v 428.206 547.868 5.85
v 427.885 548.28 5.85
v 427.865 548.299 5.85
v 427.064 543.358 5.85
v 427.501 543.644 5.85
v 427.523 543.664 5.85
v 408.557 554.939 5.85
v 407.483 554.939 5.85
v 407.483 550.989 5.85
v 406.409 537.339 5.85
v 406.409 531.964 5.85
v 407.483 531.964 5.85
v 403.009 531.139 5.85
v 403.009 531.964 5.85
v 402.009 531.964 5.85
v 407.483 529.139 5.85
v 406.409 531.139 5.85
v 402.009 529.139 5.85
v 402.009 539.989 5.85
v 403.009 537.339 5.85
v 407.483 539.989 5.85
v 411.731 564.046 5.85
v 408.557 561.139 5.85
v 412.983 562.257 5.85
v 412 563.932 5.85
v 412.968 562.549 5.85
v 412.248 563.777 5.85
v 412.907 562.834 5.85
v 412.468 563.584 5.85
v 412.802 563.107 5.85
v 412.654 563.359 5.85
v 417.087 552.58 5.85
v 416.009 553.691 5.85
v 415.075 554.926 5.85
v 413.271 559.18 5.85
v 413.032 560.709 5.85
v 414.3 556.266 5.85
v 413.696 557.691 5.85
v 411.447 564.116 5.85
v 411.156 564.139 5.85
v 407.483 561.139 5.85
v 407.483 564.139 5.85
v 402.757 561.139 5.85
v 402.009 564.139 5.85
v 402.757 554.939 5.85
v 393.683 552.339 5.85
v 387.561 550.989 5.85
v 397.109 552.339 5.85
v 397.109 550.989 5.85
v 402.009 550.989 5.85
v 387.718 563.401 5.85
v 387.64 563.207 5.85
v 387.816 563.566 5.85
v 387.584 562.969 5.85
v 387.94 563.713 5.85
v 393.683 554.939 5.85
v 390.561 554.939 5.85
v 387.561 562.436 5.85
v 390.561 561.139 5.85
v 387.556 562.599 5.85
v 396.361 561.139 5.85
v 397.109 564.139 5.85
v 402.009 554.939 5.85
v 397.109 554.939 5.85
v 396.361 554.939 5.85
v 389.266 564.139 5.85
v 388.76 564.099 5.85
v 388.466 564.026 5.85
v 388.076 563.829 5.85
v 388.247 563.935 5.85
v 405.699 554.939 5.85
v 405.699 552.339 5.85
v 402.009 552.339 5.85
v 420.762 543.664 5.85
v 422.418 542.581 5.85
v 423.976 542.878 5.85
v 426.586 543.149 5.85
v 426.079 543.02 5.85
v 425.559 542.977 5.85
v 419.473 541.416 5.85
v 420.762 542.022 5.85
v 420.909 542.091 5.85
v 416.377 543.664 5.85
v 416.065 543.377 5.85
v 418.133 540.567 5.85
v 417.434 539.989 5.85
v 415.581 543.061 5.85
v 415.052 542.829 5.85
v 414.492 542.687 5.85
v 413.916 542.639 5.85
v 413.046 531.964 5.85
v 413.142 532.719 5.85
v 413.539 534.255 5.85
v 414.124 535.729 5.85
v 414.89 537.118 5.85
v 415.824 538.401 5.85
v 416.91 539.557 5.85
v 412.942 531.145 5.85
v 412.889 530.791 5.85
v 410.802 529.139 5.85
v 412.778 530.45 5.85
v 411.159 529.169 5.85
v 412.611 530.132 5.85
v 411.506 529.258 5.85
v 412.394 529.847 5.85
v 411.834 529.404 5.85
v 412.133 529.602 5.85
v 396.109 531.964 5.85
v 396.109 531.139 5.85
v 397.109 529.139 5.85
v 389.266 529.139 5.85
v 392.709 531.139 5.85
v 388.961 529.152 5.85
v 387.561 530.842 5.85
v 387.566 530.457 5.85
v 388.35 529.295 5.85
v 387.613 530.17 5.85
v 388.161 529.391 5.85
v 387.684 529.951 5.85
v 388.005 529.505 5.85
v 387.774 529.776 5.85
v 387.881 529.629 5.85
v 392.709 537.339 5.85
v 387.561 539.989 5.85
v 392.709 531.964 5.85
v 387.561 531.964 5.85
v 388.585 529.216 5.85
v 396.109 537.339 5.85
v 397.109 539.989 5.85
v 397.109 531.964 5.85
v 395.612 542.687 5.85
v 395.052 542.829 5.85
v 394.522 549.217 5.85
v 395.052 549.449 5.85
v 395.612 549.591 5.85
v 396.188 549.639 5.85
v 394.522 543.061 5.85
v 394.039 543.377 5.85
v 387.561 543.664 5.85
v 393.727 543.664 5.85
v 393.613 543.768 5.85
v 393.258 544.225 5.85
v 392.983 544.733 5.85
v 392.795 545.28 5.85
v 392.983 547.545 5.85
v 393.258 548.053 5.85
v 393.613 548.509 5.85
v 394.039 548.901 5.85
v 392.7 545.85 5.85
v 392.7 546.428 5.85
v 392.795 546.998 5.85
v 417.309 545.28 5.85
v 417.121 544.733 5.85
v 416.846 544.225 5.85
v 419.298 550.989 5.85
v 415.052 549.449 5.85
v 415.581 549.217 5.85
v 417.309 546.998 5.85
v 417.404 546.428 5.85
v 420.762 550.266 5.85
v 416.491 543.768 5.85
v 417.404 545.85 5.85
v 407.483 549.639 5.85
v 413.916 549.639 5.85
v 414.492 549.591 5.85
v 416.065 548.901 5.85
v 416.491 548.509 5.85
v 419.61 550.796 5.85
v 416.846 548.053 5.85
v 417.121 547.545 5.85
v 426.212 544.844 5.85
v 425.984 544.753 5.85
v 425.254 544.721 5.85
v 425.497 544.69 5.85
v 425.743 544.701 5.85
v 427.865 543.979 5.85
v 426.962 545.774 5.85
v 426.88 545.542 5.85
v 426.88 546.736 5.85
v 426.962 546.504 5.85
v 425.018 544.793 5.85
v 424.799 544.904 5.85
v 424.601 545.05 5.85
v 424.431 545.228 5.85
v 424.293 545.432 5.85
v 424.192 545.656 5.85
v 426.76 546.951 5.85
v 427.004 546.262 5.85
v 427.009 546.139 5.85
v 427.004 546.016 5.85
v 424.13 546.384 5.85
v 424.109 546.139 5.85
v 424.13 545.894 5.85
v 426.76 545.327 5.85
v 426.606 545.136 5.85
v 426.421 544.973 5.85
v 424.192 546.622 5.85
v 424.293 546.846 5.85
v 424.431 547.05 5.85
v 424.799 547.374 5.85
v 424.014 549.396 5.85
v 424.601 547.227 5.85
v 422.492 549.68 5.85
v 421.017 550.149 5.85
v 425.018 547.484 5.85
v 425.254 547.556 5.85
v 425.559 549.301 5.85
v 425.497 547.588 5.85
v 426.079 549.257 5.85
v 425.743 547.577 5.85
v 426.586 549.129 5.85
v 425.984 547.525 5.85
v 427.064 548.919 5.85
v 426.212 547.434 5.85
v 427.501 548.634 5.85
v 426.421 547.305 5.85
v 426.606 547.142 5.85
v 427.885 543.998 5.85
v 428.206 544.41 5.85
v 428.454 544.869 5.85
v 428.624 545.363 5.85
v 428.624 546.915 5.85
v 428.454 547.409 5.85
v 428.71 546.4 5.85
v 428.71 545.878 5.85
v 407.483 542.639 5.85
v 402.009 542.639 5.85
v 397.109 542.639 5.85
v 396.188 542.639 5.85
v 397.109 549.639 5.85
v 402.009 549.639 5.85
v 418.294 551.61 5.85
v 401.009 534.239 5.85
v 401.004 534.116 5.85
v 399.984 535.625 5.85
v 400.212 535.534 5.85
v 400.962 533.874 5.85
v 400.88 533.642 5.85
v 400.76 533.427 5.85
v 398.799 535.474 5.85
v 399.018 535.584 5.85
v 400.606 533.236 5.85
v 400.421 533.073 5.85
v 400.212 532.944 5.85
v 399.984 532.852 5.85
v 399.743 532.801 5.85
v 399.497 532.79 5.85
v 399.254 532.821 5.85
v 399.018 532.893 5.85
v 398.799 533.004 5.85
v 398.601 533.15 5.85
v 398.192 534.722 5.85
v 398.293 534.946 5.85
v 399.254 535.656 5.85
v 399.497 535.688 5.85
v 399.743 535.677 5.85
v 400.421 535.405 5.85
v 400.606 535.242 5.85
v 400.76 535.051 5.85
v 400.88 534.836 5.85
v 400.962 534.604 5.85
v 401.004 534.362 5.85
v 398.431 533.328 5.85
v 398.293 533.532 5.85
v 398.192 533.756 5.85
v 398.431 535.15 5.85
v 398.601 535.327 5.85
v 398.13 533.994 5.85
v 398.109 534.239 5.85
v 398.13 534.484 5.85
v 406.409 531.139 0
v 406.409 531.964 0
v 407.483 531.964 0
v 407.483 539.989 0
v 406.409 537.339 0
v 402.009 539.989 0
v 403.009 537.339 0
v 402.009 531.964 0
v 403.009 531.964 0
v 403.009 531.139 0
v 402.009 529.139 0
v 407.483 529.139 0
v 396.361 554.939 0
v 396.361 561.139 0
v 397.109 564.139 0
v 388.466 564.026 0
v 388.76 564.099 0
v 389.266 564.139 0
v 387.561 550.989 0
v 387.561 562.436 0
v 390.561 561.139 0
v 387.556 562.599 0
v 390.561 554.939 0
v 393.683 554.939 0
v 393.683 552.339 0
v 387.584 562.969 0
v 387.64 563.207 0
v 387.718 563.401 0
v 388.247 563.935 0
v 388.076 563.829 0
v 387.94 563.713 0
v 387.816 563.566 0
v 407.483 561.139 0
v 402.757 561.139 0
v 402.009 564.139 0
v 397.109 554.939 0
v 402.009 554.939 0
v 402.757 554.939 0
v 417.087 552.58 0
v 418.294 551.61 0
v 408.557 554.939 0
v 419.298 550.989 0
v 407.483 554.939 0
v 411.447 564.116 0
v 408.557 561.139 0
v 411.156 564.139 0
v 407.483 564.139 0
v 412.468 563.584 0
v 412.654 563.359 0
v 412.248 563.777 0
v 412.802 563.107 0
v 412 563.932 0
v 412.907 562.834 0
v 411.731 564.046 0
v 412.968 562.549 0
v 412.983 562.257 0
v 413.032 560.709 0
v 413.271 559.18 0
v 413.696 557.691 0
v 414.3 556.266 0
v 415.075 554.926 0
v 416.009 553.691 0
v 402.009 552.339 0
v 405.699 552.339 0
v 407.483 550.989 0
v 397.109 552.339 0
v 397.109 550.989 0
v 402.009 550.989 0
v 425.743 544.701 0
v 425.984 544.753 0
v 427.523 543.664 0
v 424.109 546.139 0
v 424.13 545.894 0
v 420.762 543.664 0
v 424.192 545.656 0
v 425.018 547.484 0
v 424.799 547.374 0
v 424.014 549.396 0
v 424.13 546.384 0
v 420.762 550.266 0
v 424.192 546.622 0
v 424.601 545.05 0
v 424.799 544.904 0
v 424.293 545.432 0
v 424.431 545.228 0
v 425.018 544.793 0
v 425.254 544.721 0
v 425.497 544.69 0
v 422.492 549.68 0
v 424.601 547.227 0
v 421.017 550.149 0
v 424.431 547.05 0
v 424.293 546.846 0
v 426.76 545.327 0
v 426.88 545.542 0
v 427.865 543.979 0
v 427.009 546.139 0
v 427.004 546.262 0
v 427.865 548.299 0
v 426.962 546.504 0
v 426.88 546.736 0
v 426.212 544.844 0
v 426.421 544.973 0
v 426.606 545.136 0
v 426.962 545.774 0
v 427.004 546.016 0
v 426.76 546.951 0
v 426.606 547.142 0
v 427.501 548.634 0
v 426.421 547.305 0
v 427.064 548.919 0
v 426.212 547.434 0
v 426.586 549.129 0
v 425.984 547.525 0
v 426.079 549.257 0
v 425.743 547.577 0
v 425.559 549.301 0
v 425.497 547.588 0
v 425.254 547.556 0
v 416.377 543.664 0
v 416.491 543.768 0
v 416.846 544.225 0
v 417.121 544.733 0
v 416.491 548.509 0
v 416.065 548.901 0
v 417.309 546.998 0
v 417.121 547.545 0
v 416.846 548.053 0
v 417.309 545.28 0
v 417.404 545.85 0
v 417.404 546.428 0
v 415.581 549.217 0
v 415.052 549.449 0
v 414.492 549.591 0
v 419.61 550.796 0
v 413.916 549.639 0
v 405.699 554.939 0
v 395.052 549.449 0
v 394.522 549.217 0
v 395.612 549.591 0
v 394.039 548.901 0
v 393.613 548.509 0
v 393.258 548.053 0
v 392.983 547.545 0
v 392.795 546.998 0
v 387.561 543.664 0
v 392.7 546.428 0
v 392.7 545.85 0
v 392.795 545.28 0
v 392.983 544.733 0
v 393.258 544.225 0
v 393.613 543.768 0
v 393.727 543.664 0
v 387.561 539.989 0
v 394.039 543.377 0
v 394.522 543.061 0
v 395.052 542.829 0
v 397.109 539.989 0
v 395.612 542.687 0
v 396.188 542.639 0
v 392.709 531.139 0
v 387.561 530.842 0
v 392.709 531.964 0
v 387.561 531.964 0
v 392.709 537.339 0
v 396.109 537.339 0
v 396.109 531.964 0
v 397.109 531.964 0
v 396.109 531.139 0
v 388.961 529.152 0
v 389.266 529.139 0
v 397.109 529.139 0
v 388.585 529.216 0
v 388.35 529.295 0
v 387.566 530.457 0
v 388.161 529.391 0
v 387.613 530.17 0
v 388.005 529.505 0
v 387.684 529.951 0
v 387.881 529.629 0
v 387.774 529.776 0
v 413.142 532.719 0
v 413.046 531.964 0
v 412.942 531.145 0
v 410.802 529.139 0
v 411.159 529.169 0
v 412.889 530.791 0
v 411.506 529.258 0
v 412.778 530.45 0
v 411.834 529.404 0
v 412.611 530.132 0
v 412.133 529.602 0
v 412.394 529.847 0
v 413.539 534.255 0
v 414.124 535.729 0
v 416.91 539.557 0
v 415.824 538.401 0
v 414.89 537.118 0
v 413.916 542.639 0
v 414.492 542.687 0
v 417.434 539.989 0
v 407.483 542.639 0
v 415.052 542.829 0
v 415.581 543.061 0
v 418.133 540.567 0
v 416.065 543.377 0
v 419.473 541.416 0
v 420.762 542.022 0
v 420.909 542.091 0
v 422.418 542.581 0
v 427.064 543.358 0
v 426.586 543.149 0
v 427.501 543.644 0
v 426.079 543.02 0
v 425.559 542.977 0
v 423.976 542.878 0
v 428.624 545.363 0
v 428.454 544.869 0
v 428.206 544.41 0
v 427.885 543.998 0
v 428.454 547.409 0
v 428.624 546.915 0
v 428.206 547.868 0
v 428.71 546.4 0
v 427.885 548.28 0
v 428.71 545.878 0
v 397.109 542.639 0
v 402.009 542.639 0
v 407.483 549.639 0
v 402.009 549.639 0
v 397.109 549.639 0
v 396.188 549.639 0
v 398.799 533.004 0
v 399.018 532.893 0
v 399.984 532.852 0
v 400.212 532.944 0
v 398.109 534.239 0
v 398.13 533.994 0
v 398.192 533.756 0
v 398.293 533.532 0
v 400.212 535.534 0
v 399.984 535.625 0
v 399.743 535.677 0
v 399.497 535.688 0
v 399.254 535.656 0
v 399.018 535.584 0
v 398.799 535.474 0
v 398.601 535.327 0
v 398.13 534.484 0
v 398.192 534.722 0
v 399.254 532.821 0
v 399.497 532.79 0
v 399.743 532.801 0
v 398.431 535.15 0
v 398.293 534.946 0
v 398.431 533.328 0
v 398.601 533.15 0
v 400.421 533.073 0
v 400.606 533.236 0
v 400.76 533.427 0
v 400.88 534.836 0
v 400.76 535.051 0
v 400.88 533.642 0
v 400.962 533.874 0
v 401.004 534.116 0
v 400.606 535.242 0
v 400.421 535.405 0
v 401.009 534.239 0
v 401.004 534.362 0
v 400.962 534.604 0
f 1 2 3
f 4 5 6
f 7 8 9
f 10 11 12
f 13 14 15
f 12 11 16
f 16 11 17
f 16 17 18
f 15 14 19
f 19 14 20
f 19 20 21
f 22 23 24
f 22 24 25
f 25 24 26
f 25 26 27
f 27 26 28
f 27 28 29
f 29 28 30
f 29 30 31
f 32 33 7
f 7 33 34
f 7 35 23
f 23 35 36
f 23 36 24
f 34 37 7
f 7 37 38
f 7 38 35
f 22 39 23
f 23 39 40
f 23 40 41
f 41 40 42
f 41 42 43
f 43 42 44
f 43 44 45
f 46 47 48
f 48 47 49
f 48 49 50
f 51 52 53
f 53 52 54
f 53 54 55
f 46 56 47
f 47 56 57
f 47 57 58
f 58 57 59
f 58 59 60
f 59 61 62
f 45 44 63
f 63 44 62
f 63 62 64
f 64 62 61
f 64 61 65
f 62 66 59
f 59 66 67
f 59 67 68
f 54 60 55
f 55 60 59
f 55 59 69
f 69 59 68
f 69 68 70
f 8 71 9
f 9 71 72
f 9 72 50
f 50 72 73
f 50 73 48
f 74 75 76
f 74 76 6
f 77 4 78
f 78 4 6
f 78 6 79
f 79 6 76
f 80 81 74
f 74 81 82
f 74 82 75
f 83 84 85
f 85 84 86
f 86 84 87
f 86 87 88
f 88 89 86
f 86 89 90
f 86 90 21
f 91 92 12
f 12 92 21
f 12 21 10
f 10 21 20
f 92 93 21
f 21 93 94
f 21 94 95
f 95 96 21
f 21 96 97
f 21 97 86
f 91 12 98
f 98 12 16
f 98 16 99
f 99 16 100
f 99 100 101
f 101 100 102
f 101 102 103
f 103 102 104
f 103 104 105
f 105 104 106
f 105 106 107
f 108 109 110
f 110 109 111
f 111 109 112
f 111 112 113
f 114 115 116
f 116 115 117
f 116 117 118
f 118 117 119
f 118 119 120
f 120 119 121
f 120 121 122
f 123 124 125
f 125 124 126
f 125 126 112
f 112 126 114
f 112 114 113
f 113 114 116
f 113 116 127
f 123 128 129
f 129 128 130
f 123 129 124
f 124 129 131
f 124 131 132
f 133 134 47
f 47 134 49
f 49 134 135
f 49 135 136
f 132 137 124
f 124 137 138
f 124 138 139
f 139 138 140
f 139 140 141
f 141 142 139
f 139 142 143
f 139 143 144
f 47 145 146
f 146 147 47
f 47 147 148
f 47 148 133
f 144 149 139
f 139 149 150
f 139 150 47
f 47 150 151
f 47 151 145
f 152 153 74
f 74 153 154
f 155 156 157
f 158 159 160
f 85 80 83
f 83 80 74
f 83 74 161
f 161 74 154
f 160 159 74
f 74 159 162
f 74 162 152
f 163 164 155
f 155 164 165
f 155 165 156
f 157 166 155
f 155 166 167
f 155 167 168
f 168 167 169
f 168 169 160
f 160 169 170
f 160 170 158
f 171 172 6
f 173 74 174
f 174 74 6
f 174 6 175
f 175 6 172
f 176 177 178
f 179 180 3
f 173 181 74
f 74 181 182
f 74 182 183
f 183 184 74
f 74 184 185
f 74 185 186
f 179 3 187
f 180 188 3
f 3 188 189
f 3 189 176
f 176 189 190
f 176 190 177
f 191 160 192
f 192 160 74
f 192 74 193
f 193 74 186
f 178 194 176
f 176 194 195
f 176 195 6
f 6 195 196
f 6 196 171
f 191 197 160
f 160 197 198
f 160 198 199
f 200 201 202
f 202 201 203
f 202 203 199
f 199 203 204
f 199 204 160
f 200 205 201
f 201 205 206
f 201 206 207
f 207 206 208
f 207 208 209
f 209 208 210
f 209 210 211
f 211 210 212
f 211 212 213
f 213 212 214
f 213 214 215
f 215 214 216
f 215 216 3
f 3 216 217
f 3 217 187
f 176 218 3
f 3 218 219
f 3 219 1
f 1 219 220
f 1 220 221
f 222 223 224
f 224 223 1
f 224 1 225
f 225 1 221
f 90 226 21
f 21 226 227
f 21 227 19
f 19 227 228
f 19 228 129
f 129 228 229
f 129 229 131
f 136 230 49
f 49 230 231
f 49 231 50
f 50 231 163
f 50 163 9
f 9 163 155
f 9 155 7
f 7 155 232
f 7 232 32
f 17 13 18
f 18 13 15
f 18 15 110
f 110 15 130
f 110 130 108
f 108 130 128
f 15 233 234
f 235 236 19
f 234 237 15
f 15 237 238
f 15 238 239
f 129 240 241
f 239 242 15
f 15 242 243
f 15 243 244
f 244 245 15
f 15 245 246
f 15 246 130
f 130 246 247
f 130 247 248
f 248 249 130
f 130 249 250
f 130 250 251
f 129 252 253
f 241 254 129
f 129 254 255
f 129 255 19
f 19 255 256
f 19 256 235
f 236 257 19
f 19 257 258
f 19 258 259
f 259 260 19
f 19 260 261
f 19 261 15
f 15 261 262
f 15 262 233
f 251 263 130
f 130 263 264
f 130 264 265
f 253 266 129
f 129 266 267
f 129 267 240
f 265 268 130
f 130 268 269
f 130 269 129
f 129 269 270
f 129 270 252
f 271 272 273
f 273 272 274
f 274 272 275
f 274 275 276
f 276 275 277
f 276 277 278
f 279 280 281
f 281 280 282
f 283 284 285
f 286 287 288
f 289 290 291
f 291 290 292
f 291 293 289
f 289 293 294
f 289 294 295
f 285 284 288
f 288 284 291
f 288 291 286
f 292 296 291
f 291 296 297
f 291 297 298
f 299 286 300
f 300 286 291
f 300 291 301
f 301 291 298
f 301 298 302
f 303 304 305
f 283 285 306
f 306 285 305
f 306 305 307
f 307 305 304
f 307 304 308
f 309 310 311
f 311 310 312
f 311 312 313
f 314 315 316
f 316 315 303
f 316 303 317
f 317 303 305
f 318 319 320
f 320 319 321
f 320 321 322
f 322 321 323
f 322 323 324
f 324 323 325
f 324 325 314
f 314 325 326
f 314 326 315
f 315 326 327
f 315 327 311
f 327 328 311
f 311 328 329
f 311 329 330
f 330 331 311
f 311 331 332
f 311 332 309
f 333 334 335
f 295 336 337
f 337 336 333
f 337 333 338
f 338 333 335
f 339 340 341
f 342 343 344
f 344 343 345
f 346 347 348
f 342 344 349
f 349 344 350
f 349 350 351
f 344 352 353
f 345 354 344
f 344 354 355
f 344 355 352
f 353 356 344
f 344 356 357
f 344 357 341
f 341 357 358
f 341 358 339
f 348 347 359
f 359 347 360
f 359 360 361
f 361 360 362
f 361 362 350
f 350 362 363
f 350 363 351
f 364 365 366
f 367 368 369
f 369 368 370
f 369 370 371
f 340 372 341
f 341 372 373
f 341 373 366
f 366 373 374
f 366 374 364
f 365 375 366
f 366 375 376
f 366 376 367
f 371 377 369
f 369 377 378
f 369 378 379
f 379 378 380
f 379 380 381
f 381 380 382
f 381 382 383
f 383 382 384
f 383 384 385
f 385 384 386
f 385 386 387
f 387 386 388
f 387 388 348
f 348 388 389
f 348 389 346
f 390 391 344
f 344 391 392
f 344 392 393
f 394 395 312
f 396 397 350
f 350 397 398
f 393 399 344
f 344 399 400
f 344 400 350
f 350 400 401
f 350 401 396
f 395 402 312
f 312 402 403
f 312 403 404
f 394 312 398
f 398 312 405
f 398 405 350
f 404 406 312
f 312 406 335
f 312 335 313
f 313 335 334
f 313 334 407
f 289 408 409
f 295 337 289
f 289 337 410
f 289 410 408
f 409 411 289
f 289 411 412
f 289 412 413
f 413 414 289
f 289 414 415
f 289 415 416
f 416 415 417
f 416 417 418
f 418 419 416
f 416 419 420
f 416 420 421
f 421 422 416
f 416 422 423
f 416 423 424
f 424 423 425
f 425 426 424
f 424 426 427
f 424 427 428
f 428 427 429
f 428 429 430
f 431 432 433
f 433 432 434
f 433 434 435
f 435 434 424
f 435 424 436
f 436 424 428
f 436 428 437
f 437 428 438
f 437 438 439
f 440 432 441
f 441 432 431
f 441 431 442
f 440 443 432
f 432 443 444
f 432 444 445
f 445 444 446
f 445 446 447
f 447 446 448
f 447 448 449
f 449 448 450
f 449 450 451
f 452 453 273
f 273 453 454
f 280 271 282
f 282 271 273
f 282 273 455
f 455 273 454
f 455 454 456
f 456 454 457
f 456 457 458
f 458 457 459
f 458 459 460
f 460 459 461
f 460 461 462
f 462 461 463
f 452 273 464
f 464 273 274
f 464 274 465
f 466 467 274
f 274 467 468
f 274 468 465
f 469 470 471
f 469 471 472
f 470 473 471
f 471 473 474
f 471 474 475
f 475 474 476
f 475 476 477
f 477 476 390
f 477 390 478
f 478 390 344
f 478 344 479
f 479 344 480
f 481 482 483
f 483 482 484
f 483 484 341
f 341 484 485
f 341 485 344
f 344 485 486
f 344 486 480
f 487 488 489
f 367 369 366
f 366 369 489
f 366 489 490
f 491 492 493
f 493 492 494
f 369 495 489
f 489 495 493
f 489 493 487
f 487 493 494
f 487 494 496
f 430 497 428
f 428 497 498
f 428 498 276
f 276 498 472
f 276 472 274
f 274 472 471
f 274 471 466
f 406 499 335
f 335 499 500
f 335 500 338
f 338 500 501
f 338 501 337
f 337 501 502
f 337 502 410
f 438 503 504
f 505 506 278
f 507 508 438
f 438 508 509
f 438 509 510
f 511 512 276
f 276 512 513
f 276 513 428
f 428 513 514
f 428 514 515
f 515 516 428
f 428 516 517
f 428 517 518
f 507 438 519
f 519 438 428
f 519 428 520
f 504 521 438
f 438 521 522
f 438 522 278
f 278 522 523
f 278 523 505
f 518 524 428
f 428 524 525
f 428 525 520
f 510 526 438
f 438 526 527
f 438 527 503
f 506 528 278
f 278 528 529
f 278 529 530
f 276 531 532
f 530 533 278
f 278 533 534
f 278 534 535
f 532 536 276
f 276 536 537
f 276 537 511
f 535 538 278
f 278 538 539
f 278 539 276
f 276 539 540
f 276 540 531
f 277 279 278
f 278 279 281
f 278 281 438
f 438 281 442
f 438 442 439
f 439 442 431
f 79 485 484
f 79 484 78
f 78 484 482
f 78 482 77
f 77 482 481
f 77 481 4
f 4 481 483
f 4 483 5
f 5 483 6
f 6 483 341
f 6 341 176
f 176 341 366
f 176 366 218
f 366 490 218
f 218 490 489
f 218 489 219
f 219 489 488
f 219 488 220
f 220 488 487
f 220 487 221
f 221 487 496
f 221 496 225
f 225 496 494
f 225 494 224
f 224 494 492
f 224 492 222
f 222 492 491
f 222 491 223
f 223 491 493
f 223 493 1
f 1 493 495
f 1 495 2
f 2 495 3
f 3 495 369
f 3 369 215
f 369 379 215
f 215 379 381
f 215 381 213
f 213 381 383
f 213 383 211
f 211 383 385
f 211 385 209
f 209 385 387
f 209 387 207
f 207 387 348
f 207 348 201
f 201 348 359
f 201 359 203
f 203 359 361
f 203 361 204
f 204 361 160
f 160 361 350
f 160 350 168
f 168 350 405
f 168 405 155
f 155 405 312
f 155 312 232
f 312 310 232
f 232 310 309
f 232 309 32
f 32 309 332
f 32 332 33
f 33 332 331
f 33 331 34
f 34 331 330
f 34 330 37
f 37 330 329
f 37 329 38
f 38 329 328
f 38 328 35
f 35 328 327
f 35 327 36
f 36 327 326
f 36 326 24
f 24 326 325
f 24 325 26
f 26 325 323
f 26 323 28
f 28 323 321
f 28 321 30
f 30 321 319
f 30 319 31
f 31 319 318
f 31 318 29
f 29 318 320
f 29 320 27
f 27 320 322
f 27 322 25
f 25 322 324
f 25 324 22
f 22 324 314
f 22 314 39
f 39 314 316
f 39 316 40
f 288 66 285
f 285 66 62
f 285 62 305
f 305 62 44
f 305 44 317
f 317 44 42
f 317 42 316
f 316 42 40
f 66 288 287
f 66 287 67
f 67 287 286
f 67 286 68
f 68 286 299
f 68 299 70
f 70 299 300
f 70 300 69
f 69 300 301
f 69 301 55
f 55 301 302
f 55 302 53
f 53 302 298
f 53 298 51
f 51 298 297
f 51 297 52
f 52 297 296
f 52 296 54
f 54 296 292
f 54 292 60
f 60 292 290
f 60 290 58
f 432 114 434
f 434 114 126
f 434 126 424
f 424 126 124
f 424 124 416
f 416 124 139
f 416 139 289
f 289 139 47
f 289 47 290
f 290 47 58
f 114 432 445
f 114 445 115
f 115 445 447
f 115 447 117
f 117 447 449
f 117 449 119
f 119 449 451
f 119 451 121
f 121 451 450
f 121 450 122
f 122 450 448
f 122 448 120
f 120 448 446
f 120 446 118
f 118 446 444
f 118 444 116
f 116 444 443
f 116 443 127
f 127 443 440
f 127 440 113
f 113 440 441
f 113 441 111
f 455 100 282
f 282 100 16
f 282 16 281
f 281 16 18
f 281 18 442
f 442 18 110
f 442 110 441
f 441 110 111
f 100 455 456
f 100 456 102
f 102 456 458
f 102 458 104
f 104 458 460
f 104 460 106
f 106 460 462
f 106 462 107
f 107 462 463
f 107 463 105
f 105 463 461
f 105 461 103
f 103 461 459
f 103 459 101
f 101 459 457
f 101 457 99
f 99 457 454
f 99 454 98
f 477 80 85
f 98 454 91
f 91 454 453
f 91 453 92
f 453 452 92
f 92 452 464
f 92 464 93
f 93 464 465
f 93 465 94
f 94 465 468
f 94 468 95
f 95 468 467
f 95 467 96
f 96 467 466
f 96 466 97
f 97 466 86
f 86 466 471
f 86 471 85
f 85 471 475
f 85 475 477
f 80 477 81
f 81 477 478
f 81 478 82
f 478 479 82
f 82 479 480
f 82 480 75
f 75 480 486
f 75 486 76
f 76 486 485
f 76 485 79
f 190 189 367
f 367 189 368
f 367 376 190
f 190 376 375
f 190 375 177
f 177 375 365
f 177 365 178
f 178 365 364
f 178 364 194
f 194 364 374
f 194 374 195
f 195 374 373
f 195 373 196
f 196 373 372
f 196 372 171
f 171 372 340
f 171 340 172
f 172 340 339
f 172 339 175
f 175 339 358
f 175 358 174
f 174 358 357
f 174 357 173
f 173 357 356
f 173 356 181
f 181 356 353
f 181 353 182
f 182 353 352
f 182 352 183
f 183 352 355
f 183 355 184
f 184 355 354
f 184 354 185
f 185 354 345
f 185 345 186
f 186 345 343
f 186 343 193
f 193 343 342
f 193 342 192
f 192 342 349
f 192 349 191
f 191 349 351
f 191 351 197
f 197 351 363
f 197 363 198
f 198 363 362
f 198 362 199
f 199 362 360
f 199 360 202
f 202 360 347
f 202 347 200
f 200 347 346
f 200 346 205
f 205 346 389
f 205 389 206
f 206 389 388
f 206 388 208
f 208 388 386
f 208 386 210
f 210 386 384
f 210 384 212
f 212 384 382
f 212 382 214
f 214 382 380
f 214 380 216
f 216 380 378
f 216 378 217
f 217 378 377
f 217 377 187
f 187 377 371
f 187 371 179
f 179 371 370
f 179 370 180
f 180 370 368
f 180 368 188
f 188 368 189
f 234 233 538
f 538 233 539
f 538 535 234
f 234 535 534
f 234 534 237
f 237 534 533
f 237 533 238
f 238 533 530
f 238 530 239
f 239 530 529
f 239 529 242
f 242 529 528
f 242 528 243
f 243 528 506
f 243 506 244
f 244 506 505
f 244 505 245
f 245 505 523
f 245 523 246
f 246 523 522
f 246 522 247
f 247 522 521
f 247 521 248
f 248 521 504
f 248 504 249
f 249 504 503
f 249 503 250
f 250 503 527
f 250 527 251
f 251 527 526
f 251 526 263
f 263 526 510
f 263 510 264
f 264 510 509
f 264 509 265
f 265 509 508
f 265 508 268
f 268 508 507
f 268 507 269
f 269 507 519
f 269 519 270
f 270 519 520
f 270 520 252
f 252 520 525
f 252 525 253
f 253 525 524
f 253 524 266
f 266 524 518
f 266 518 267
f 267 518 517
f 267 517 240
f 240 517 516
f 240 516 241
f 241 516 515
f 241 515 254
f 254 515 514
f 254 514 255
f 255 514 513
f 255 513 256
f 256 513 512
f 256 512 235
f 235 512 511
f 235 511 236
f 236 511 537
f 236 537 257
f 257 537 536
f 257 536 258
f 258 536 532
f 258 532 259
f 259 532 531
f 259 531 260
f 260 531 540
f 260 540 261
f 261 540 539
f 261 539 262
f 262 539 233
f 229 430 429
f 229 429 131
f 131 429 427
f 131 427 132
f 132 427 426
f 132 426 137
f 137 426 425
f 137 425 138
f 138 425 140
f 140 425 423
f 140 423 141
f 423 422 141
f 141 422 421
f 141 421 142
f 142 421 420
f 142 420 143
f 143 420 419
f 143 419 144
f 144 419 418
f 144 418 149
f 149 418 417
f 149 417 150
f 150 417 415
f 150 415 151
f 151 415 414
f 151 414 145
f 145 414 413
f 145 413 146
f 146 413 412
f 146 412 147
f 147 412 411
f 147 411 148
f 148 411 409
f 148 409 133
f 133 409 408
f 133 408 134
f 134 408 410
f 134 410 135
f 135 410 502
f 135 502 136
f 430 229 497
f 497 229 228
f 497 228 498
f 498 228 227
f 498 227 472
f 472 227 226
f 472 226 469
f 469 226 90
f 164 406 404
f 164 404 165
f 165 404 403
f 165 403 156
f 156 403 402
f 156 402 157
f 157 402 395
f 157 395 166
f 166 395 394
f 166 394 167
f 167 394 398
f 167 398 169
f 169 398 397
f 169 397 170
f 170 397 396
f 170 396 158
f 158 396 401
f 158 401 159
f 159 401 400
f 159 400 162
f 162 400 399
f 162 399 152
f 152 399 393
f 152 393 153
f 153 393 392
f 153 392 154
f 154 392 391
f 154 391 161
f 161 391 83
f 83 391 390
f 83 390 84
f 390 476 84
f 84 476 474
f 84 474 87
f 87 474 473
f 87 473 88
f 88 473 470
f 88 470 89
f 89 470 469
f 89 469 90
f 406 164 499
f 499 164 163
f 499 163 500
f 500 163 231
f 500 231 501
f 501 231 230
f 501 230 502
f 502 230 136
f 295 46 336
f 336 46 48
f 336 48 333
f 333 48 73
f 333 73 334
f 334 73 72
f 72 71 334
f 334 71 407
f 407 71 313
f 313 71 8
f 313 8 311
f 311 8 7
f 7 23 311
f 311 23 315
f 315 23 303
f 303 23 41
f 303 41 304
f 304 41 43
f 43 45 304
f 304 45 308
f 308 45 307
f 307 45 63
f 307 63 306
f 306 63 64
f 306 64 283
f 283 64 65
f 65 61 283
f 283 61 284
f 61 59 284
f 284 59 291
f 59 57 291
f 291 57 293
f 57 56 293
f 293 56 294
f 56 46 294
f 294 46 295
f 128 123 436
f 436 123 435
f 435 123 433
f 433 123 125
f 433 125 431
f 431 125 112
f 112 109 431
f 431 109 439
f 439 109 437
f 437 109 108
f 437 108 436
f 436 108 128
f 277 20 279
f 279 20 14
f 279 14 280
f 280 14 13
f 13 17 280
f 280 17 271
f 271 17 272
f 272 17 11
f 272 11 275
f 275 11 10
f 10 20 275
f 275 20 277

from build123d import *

# Parameters (mm, degrees)
SKETCH1_R           = 1.449961854
SKETCH1_R_2         = 1.45
SKETCH1_W           = 3.400011
SKETCH1_H           = 6.199989
BOSS_EXTRUDE2_DEPTH = 5.85


with BuildPart() as part:
    # Sketch1 → Boss-Extrude2 (new body)
    with BuildSketch(Plane.XY):
        with BuildLine():
            Line((389.265872387, 564.138903138), (411.155971541, 564.138903138))
            ThreePointArc((411.155971541, 564.138903138), (412.46753945, 563.584161878), (412.982994127, 562.256662455))
            ThreePointArc((412.982994127, 562.256662455), (416.531053859, 553.119006976), (425.559046996, 549.30052358))
            ThreePointArc((425.559046996, 549.30052358), (428.720667438, 546.138903138), (425.559046996, 542.977282695))
            ThreePointArc((425.559046996, 542.977282695), (416.910383014, 539.55653755), (412.941547102, 531.145281549))
            ThreePointArc((412.941547102, 531.145281549), (412.268542883, 529.718966402), (410.801969943, 529.138903138))
            Line((410.801969943, 529.138903138), (389.265871713, 529.138903138))
            add(Edge.make_bspline(
                [(387.560996, 530.842035377), (387.467163743, 529.138903138), (389.265871713, 529.138903138)],
                knots=[0, 0, 0, 1, 1, 1], degree=2))
            Line((387.560996, 530.842035377), (387.560996, 562.435769381))
            add(Edge.make_bspline(
                [(387.560996, 562.435769381), (387.467162762, 564.138903138), (389.265872387, 564.138903138)],
                knots=[0, 0, 0, 1, 1, 1], degree=2))
        make_face()
        with Locations((425.559046996, 546.138903138)):
            Circle(SKETCH1_R, mode=Mode.SUBTRACT)
        with Locations((399.559046996, 534.238897638)):
            Circle(SKETCH1_R_2, mode=Mode.SUBTRACT)
        Polygon((405.698755359, 552.338914138), (405.698755359, 554.938914138), (408.557097991, 554.938914138), (408.557097991, 561.138903138), (402.757097991, 561.138903138), (402.757097991, 554.938914138), (396.360996, 554.938914138), (396.360996, 561.138903138), (390.560996, 561.138903138), (390.560996, 554.938914138), (393.683007359, 554.938914138), (393.683007359, 552.338914138), align=None, mode=Mode.SUBTRACT)
        with Locations((394.409041496, 534.238897638)):
            Rectangle(SKETCH1_W, SKETCH1_H, mode=Mode.SUBTRACT)
        with Locations((404.709052496, 534.238897638)):
            Rectangle(SKETCH1_W, SKETCH1_H, mode=Mode.SUBTRACT)
        with BuildLine():
            Line((396.188262357, 549.638903138), (413.915690223, 549.638903138))
            ThreePointArc((413.915690223, 549.638903138), (417.415690223, 546.138903138), (413.915690223, 542.638903138))
            Line((413.915690223, 542.638903138), (396.188262357, 542.638903138))
            ThreePointArc((396.188262357, 542.638903138), (392.688262357, 546.138903138), (396.188262357, 549.638903138))
        make_face(mode=Mode.SUBTRACT)
    extrude(amount=BOSS_EXTRUDE2_DEPTH)


solid = part.part
